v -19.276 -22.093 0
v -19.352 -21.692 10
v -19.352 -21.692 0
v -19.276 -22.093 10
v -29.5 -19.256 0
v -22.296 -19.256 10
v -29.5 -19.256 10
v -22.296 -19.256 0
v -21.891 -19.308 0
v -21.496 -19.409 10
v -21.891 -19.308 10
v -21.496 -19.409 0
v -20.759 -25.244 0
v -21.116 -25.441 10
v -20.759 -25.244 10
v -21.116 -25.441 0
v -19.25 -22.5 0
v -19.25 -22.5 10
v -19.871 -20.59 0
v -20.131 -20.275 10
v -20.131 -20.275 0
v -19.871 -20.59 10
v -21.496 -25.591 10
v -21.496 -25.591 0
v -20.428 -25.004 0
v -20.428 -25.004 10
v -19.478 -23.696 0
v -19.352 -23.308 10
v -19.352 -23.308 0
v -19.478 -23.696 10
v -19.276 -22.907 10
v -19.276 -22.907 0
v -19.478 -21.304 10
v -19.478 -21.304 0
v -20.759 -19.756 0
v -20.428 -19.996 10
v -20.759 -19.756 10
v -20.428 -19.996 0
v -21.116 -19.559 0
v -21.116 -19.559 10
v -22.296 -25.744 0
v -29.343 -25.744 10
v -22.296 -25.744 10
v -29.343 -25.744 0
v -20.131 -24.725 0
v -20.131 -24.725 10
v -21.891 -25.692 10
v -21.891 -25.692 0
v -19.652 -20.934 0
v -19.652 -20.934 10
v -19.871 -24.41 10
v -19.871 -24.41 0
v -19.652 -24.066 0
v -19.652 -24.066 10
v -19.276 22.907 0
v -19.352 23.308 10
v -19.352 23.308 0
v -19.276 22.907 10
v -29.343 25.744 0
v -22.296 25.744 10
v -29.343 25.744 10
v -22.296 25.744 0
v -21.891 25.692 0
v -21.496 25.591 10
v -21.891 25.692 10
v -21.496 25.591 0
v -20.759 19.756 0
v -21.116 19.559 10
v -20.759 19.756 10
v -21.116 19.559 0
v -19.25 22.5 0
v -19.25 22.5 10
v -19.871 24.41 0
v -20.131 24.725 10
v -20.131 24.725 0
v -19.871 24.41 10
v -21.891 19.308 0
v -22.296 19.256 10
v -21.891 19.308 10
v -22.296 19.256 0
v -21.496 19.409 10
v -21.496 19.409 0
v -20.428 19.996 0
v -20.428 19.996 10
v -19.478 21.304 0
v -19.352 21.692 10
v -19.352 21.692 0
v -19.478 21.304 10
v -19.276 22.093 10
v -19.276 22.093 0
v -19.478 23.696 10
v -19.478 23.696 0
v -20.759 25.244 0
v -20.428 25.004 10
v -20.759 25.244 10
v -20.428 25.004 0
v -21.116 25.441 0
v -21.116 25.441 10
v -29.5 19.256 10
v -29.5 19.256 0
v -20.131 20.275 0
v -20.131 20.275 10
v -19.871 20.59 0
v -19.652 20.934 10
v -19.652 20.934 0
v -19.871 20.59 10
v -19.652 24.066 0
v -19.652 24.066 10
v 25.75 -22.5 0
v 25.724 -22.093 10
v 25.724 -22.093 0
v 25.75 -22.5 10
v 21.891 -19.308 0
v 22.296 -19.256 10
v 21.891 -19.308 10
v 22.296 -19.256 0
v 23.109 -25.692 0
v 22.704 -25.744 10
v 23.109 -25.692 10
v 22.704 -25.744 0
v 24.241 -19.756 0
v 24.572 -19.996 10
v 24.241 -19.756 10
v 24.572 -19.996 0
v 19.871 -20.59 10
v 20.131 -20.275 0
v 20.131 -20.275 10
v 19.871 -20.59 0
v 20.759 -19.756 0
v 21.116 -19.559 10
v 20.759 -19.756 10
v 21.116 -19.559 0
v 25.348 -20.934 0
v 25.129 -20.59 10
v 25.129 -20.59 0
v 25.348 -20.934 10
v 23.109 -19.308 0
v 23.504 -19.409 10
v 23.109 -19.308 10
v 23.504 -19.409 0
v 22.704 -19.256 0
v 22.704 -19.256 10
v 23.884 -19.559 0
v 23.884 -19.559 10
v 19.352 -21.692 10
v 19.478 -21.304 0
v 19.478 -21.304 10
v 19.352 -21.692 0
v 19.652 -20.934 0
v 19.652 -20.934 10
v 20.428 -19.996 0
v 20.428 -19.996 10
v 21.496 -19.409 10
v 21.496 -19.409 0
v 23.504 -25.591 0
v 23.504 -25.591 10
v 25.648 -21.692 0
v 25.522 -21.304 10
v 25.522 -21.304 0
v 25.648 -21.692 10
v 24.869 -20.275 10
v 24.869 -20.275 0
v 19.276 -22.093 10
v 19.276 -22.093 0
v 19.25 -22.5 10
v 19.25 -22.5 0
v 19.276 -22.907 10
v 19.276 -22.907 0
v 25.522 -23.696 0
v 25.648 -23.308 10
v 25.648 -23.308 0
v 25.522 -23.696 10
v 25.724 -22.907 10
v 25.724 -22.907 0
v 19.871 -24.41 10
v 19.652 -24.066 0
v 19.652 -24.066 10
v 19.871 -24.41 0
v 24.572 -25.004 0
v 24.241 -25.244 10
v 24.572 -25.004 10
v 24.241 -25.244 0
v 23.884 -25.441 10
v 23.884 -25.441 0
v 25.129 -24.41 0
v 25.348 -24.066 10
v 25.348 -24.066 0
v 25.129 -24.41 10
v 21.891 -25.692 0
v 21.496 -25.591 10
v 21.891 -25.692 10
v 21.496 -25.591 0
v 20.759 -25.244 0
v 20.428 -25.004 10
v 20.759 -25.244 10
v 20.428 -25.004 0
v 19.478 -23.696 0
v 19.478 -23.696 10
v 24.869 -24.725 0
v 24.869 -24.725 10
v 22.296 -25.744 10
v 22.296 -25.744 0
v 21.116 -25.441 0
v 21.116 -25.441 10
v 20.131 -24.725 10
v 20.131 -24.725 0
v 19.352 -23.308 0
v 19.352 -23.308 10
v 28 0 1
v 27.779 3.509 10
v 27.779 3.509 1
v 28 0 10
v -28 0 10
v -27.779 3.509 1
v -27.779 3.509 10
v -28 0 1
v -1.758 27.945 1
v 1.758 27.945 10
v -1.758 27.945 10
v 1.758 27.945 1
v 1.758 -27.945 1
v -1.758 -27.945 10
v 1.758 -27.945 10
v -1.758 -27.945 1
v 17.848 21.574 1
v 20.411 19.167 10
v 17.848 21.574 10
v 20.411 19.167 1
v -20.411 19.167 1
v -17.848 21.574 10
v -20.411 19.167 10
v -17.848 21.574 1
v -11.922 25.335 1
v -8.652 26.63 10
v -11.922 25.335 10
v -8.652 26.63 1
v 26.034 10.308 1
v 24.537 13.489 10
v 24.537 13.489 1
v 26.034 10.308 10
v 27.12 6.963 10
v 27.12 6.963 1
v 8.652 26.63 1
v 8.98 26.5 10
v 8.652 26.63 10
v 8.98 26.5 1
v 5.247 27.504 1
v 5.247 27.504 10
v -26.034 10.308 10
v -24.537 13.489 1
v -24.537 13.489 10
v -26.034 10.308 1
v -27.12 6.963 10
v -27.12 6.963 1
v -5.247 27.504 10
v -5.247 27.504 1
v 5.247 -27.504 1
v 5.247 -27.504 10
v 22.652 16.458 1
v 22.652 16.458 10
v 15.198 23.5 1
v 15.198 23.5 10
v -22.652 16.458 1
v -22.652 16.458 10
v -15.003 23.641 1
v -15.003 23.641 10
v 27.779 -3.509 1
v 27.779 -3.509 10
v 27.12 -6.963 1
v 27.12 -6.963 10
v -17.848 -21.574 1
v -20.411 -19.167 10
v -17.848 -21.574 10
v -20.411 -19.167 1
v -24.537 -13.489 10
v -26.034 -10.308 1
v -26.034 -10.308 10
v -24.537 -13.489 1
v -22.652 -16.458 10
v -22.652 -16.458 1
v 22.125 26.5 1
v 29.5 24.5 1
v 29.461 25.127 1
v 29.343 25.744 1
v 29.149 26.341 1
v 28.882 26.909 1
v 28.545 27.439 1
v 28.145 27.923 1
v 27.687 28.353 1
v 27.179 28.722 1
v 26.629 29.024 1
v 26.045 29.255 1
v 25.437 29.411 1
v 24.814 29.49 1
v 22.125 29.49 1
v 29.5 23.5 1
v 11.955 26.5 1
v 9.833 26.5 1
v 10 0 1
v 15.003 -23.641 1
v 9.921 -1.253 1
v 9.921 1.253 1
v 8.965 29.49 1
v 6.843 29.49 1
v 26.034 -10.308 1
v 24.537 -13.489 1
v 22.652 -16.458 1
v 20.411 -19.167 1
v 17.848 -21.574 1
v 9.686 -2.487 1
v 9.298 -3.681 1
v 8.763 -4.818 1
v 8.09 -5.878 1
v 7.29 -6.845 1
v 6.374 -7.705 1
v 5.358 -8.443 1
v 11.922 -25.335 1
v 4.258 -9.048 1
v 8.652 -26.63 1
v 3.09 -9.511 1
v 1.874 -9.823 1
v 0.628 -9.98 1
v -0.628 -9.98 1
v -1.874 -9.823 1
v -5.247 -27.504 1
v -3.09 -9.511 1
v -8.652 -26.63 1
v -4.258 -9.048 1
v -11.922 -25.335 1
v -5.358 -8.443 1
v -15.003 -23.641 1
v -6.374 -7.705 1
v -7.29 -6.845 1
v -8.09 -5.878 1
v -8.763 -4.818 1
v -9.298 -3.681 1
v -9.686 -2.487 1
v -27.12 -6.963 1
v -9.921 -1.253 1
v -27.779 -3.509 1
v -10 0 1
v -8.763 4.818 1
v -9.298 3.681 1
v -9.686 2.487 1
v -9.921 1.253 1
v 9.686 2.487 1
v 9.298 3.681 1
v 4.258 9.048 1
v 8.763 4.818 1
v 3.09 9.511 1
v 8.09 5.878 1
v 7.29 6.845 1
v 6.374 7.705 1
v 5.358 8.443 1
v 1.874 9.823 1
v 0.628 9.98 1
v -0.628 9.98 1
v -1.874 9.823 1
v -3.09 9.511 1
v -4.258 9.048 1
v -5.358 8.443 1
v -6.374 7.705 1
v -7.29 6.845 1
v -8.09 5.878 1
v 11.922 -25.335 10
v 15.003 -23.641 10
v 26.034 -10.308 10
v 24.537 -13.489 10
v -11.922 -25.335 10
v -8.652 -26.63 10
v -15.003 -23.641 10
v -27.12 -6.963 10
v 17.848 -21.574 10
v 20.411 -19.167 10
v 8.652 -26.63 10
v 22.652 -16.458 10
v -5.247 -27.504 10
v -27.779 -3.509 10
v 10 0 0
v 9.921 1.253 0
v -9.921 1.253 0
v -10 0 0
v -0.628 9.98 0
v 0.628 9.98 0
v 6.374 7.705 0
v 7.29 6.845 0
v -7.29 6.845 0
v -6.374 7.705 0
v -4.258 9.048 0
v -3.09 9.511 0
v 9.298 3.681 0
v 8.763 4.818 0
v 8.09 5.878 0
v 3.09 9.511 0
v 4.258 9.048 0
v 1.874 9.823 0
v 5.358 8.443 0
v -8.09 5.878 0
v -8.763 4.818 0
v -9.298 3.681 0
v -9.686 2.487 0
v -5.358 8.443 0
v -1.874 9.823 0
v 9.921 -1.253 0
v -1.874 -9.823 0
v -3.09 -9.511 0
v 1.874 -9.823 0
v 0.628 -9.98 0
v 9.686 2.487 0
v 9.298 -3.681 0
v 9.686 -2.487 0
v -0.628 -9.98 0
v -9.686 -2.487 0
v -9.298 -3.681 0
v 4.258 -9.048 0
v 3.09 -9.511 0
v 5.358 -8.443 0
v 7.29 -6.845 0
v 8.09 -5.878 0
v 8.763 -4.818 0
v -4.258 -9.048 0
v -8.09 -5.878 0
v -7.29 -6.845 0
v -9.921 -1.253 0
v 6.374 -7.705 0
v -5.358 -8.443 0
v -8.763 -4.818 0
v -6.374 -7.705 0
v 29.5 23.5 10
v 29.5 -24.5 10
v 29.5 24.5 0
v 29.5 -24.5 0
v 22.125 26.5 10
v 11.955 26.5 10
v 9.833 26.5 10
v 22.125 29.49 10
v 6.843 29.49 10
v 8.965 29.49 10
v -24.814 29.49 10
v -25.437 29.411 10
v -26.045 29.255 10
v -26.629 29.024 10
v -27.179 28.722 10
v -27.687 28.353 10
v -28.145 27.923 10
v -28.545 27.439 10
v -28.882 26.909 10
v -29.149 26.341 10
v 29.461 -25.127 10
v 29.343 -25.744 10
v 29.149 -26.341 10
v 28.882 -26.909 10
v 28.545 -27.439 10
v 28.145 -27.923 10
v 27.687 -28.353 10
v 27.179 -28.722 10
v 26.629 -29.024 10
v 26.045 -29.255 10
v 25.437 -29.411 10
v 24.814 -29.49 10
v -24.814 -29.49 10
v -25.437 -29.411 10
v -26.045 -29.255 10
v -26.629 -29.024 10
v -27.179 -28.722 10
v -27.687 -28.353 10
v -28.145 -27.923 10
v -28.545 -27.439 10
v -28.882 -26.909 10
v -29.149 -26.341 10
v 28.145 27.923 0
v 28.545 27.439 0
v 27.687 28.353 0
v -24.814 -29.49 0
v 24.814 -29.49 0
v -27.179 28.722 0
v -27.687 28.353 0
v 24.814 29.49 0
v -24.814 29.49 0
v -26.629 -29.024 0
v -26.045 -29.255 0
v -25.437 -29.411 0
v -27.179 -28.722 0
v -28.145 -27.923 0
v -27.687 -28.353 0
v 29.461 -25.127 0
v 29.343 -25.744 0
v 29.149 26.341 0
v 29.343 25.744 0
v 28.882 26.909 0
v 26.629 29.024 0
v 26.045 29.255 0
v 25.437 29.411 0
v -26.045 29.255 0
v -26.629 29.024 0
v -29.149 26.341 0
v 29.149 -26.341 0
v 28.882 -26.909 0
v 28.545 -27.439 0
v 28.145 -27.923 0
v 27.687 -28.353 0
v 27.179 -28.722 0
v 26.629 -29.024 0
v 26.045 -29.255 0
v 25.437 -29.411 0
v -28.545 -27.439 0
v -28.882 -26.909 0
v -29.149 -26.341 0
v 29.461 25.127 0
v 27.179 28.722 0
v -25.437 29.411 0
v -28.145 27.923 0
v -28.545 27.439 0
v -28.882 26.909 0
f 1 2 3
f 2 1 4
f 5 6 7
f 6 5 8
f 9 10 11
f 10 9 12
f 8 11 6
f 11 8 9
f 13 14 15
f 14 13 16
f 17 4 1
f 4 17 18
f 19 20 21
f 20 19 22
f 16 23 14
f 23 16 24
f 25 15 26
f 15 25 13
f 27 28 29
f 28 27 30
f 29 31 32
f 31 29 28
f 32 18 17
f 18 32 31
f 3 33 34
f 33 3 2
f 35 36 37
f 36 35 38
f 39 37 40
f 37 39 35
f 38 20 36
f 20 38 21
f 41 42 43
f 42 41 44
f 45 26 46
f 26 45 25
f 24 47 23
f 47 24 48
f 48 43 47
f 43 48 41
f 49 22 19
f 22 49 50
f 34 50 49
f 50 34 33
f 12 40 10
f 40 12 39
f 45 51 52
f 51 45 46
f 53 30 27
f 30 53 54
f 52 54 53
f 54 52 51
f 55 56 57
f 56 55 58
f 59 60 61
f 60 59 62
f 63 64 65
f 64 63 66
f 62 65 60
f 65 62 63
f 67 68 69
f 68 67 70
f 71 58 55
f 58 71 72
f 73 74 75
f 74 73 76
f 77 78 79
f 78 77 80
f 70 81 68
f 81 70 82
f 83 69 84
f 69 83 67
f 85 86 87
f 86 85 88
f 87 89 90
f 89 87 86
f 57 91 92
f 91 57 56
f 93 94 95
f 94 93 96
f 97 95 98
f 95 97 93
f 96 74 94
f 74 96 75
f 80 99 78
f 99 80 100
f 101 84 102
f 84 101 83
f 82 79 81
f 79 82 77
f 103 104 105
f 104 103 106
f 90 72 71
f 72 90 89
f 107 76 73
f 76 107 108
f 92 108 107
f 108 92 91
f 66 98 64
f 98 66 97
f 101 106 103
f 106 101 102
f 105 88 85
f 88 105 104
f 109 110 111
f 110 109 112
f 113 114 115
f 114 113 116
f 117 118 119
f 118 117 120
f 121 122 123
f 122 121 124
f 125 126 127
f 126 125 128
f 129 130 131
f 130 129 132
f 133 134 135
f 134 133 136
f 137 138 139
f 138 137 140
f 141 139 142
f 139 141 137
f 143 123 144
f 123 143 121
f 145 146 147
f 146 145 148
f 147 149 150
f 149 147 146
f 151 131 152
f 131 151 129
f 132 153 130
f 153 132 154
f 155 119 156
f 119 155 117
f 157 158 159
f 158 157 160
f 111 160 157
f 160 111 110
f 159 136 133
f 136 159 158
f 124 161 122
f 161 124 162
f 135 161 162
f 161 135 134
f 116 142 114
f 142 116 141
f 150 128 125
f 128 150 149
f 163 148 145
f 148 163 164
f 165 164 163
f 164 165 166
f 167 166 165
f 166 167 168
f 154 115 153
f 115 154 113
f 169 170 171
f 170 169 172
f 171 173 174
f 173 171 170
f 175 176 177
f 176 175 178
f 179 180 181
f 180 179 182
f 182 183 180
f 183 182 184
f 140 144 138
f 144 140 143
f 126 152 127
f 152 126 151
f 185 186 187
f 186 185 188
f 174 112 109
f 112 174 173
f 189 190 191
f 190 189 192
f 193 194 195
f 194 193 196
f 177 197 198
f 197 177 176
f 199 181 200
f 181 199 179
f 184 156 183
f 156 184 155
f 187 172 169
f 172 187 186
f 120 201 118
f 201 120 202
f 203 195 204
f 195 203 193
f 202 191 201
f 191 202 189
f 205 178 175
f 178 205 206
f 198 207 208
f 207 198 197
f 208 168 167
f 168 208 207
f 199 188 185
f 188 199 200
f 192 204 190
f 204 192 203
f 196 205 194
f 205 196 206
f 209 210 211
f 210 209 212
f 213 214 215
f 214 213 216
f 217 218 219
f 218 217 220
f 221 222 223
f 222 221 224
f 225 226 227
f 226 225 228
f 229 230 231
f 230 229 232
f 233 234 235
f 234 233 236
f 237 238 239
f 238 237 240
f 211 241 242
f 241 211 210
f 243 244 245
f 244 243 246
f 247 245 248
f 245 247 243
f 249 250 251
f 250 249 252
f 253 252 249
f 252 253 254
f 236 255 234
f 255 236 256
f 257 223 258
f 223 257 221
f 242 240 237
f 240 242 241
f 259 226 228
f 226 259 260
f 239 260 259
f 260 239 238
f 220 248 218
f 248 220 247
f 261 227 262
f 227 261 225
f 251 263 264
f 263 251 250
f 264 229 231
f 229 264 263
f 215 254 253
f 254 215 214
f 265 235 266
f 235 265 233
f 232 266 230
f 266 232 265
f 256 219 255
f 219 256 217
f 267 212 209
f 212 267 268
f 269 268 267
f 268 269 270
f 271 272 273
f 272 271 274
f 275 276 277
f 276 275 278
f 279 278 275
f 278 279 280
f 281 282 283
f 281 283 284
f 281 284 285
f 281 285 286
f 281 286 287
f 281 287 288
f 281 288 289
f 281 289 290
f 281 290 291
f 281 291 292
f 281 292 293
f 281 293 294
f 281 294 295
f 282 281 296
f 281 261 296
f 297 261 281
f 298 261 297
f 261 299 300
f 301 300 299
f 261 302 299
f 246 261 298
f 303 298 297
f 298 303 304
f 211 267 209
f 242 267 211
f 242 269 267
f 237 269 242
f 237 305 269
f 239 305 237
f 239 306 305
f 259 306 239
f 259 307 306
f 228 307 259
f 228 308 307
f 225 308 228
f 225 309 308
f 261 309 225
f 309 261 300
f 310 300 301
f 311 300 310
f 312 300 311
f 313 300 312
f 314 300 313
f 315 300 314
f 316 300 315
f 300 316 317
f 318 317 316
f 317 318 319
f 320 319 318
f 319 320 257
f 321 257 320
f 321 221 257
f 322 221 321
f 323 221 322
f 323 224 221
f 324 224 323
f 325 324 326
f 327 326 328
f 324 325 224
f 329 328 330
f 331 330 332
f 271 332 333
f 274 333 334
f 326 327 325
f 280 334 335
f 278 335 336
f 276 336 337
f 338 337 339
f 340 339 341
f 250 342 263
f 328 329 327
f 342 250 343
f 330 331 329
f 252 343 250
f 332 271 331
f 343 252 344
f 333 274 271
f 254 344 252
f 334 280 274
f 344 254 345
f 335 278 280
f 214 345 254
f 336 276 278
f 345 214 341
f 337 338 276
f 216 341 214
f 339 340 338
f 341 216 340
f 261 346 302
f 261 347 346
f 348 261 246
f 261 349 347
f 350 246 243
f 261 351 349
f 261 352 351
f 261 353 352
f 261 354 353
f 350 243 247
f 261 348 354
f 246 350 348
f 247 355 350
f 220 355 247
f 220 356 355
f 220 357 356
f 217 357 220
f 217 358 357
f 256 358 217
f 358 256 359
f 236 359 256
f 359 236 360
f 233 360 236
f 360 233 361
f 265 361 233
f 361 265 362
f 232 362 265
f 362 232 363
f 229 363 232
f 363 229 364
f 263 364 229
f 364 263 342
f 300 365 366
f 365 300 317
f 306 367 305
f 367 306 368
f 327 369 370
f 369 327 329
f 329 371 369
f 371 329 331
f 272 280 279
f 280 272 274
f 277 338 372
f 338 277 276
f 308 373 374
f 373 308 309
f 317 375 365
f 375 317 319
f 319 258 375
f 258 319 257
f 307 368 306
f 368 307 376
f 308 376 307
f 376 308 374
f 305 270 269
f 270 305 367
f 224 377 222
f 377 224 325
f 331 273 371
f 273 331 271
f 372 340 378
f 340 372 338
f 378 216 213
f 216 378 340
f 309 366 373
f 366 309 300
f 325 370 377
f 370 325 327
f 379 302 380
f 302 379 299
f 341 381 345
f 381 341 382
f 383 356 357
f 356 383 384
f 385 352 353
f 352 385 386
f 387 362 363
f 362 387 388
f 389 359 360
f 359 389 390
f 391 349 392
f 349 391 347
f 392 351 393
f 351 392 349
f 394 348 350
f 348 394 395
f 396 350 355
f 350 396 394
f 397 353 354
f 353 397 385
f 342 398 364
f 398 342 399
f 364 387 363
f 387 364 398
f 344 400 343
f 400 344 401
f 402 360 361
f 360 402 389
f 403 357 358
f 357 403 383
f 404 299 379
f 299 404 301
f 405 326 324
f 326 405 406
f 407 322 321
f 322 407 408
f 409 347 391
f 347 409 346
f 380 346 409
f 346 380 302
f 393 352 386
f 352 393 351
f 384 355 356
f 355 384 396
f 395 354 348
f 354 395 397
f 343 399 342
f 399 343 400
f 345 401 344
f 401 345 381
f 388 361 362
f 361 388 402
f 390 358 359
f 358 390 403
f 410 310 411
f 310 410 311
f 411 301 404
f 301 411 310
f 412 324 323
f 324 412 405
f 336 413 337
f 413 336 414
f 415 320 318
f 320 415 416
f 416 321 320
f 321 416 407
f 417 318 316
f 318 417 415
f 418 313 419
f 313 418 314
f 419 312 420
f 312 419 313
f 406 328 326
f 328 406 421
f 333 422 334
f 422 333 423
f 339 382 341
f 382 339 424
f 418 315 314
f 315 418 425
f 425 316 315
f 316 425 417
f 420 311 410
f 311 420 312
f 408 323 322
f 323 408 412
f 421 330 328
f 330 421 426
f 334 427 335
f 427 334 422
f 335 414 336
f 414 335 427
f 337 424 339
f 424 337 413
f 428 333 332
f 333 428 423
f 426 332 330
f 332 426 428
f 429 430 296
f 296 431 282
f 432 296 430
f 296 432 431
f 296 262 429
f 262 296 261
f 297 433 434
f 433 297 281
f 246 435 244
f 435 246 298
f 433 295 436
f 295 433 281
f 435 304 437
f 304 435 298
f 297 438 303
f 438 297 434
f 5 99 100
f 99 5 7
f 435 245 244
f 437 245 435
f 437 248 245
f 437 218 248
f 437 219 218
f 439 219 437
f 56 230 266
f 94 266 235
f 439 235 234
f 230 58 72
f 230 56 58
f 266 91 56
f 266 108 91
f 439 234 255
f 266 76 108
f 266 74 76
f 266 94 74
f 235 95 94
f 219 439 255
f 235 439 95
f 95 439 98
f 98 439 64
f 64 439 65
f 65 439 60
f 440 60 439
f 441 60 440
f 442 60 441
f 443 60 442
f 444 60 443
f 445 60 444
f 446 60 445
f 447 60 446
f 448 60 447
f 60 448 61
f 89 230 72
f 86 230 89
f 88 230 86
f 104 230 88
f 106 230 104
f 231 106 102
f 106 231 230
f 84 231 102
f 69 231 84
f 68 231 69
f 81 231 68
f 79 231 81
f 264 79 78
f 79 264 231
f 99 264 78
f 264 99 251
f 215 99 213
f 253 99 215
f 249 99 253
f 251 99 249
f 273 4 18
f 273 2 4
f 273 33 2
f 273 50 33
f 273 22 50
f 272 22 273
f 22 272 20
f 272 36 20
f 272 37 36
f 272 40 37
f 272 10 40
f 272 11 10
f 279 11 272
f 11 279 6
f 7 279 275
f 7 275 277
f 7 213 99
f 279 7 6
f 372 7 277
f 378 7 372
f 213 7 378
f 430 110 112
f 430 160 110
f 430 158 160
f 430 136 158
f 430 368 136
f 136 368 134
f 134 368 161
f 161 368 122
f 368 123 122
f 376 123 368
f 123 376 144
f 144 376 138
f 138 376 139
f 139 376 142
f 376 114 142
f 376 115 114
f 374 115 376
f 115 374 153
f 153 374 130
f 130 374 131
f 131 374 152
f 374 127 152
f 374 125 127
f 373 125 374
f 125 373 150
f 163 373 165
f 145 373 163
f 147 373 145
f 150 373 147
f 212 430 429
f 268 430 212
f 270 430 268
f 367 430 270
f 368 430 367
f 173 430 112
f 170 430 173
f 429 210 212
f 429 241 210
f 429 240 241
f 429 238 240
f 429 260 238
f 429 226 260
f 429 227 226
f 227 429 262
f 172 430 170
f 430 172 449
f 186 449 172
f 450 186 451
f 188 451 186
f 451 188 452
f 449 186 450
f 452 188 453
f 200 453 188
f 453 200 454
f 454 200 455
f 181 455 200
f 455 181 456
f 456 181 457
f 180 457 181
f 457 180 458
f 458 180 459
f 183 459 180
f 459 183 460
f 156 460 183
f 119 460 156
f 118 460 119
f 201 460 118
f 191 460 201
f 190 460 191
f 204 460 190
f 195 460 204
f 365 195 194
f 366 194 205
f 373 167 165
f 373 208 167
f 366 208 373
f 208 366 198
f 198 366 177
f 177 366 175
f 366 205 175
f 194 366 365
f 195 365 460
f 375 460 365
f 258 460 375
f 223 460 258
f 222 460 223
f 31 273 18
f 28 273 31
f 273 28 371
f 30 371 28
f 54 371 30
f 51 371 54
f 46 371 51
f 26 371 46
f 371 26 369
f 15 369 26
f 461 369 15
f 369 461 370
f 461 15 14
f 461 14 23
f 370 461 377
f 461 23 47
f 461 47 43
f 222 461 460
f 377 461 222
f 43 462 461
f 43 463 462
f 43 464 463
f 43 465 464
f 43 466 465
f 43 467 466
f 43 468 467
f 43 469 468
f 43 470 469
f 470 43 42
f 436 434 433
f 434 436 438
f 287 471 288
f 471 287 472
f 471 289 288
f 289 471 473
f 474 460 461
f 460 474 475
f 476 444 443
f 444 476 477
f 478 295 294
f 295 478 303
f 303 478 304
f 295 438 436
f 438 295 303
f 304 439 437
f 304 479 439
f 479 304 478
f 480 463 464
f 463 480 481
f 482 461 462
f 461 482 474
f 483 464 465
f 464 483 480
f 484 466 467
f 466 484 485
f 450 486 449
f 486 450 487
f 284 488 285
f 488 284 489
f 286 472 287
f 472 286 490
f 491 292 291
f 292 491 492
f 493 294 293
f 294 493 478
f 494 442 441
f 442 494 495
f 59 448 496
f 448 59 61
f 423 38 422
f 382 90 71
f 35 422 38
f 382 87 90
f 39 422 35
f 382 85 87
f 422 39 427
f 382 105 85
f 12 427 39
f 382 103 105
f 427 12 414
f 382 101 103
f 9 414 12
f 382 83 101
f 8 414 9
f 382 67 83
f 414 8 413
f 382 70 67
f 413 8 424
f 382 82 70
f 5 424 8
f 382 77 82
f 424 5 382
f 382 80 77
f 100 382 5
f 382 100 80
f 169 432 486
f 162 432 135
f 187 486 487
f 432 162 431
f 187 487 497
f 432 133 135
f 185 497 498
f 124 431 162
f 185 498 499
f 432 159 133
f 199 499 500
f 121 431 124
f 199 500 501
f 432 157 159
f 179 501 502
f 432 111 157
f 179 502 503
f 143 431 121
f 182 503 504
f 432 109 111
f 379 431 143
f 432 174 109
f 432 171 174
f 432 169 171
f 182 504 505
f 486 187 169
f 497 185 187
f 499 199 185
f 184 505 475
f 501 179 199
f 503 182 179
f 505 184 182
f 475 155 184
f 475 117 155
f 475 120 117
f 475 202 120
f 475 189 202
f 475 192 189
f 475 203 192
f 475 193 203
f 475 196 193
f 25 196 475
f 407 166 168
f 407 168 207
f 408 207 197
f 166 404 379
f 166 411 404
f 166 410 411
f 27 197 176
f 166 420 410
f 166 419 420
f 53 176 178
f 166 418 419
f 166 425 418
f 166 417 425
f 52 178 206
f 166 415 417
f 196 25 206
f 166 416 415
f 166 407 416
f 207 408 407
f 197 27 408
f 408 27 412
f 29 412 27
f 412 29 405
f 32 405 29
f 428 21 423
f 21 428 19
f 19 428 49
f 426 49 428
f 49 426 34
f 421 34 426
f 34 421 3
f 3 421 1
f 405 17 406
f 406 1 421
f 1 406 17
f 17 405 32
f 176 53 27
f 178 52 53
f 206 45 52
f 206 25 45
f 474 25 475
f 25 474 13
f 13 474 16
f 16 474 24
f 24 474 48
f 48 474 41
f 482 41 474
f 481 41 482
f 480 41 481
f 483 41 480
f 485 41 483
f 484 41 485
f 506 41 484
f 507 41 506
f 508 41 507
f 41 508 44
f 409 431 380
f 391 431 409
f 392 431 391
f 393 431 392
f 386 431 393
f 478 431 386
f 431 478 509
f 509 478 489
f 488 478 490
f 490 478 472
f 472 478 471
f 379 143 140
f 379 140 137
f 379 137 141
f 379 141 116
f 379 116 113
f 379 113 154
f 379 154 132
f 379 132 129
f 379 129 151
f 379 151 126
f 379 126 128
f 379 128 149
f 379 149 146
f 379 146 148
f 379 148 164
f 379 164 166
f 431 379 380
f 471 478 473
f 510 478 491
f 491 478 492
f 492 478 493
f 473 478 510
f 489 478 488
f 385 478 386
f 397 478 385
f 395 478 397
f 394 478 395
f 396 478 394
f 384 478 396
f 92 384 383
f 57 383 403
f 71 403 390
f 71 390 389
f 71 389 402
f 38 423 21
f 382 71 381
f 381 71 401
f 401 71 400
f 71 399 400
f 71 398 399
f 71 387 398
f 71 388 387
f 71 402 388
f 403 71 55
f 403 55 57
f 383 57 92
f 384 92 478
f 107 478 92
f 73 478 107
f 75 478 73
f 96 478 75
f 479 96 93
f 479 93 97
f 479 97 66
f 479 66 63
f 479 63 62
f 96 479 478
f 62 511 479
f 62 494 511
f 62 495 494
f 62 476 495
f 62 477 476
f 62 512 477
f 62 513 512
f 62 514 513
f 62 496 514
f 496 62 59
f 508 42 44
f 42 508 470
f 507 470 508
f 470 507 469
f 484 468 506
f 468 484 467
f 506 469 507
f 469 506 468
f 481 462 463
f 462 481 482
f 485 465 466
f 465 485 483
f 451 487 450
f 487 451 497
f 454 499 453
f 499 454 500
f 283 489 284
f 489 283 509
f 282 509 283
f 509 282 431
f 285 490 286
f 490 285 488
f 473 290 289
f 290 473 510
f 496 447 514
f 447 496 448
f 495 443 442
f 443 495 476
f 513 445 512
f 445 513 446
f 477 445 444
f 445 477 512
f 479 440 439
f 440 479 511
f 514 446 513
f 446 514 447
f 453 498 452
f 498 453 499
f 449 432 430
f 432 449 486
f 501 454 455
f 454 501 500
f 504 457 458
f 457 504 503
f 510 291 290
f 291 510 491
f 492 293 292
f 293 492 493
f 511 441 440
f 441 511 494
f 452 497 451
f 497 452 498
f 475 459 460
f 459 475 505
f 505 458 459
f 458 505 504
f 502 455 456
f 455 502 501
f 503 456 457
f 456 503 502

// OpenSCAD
$fn = 50;


difference() {
	union() {
		translate(v = [0, 0, 0]) {
			rotate(a = [0, 0, 0]) {
				hull() {
					translate(v = [-24.5000000000, 24.5000000000, 0]) {
						rotate(a = [0, 0, 0]) {
							translate(v = [0, 0, 0]) {
								rotate(a = [0, 0, 0]) {
									cylinder(h = 10, r = 5);
								}
							}
						}
					}
					translate(v = [24.5000000000, 24.5000000000, 0]) {
						rotate(a = [0, 0, 0]) {
							translate(v = [0, 0, 0]) {
								rotate(a = [0, 0, 0]) {
									cylinder(h = 10, r = 5);
								}
							}
						}
					}
					translate(v = [-24.5000000000, -24.5000000000, 0]) {
						rotate(a = [0, 0, 0]) {
							translate(v = [0, 0, 0]) {
								rotate(a = [0, 0, 0]) {
									cylinder(h = 10, r = 5);
								}
							}
						}
					}
					translate(v = [24.5000000000, -24.5000000000, 0]) {
						rotate(a = [0, 0, 0]) {
							translate(v = [0, 0, 0]) {
								rotate(a = [0, 0, 0]) {
									cylinder(h = 10, r = 5);
								}
							}
						}
					}
				}
			}
		}
	}
	union() {
		translate(v = [-30.0000000000, -22.5000000000, -125]) {
			rotate(a = [0, 0, 0]) {
				hull() {
					translate(v = [7.5000000000, 0, 0]) {
						rotate(a = [0, 0, 0]) {
							translate(v = [0, 0, 0]) {
								rotate(a = [0, 0, 0]) {
									cylinder(h = 250, r = 3.2500000000);
								}
							}
						}
					}
					translate(v = [-7.5000000000, 0, 0]) {
						rotate(a = [0, 0, 0]) {
							translate(v = [0, 0, 0]) {
								rotate(a = [0, 0, 0]) {
									cylinder(h = 250, r = 3.2500000000);
								}
							}
						}
					}
				}
			}
		}
		translate(v = [-30.0000000000, 22.5000000000, -125]) {
			rotate(a = [0, 0, 0]) {
				hull() {
					translate(v = [7.5000000000, 0, 0]) {
						rotate(a = [0, 0, 0]) {
							translate(v = [0, 0, 0]) {
								rotate(a = [0, 0, 0]) {
									cylinder(h = 250, r = 3.2500000000);
								}
							}
						}
					}
					translate(v = [-7.5000000000, 0, 0]) {
						rotate(a = [0, 0, 0]) {
							translate(v = [0, 0, 0]) {
								rotate(a = [0, 0, 0]) {
									cylinder(h = 250, r = 3.2500000000);
								}
							}
						}
					}
				}
			}
		}
		translate(v = [22.5000000000, -22.5000000000, -125.0000000000]) {
			rotate(a = [0, 0, 0]) {
				cylinder(h = 250, r = 3.2500000000);
			}
		}
		translate(v = [0, 0, 1.0000000000]) {
			rotate(a = [0, 0, 0]) {
				cylinder(h = 12, r = 28.0000000000);
			}
		}
		translate(v = [0, 0, -5.0000000000]) {
			rotate(a = [0, 0, 0]) {
				cylinder(h = 10, r = 10.0000000000);
			}
		}
		translate(v = [0.0000000000, 23.5000000000, 1]) {
			rotate(a = [0, 0, 0]) {
				cube(size = [29.5000000000, 3, 12]);
			}
		}
		translate(v = [22.1250000000, 23.5000000000, 1]) {
			rotate(a = [0, 0, 0]) {
				cube(size = [7.3750000000, 6, 12]);
			}
		}
		translate(v = [6.0833333333, 30.2500000000, 1]) {
			rotate(a = [0, 0, -45]) {
				cube(size = [7.5000000000, 1.5000000000, 12]);
			}
		}
	}
}
